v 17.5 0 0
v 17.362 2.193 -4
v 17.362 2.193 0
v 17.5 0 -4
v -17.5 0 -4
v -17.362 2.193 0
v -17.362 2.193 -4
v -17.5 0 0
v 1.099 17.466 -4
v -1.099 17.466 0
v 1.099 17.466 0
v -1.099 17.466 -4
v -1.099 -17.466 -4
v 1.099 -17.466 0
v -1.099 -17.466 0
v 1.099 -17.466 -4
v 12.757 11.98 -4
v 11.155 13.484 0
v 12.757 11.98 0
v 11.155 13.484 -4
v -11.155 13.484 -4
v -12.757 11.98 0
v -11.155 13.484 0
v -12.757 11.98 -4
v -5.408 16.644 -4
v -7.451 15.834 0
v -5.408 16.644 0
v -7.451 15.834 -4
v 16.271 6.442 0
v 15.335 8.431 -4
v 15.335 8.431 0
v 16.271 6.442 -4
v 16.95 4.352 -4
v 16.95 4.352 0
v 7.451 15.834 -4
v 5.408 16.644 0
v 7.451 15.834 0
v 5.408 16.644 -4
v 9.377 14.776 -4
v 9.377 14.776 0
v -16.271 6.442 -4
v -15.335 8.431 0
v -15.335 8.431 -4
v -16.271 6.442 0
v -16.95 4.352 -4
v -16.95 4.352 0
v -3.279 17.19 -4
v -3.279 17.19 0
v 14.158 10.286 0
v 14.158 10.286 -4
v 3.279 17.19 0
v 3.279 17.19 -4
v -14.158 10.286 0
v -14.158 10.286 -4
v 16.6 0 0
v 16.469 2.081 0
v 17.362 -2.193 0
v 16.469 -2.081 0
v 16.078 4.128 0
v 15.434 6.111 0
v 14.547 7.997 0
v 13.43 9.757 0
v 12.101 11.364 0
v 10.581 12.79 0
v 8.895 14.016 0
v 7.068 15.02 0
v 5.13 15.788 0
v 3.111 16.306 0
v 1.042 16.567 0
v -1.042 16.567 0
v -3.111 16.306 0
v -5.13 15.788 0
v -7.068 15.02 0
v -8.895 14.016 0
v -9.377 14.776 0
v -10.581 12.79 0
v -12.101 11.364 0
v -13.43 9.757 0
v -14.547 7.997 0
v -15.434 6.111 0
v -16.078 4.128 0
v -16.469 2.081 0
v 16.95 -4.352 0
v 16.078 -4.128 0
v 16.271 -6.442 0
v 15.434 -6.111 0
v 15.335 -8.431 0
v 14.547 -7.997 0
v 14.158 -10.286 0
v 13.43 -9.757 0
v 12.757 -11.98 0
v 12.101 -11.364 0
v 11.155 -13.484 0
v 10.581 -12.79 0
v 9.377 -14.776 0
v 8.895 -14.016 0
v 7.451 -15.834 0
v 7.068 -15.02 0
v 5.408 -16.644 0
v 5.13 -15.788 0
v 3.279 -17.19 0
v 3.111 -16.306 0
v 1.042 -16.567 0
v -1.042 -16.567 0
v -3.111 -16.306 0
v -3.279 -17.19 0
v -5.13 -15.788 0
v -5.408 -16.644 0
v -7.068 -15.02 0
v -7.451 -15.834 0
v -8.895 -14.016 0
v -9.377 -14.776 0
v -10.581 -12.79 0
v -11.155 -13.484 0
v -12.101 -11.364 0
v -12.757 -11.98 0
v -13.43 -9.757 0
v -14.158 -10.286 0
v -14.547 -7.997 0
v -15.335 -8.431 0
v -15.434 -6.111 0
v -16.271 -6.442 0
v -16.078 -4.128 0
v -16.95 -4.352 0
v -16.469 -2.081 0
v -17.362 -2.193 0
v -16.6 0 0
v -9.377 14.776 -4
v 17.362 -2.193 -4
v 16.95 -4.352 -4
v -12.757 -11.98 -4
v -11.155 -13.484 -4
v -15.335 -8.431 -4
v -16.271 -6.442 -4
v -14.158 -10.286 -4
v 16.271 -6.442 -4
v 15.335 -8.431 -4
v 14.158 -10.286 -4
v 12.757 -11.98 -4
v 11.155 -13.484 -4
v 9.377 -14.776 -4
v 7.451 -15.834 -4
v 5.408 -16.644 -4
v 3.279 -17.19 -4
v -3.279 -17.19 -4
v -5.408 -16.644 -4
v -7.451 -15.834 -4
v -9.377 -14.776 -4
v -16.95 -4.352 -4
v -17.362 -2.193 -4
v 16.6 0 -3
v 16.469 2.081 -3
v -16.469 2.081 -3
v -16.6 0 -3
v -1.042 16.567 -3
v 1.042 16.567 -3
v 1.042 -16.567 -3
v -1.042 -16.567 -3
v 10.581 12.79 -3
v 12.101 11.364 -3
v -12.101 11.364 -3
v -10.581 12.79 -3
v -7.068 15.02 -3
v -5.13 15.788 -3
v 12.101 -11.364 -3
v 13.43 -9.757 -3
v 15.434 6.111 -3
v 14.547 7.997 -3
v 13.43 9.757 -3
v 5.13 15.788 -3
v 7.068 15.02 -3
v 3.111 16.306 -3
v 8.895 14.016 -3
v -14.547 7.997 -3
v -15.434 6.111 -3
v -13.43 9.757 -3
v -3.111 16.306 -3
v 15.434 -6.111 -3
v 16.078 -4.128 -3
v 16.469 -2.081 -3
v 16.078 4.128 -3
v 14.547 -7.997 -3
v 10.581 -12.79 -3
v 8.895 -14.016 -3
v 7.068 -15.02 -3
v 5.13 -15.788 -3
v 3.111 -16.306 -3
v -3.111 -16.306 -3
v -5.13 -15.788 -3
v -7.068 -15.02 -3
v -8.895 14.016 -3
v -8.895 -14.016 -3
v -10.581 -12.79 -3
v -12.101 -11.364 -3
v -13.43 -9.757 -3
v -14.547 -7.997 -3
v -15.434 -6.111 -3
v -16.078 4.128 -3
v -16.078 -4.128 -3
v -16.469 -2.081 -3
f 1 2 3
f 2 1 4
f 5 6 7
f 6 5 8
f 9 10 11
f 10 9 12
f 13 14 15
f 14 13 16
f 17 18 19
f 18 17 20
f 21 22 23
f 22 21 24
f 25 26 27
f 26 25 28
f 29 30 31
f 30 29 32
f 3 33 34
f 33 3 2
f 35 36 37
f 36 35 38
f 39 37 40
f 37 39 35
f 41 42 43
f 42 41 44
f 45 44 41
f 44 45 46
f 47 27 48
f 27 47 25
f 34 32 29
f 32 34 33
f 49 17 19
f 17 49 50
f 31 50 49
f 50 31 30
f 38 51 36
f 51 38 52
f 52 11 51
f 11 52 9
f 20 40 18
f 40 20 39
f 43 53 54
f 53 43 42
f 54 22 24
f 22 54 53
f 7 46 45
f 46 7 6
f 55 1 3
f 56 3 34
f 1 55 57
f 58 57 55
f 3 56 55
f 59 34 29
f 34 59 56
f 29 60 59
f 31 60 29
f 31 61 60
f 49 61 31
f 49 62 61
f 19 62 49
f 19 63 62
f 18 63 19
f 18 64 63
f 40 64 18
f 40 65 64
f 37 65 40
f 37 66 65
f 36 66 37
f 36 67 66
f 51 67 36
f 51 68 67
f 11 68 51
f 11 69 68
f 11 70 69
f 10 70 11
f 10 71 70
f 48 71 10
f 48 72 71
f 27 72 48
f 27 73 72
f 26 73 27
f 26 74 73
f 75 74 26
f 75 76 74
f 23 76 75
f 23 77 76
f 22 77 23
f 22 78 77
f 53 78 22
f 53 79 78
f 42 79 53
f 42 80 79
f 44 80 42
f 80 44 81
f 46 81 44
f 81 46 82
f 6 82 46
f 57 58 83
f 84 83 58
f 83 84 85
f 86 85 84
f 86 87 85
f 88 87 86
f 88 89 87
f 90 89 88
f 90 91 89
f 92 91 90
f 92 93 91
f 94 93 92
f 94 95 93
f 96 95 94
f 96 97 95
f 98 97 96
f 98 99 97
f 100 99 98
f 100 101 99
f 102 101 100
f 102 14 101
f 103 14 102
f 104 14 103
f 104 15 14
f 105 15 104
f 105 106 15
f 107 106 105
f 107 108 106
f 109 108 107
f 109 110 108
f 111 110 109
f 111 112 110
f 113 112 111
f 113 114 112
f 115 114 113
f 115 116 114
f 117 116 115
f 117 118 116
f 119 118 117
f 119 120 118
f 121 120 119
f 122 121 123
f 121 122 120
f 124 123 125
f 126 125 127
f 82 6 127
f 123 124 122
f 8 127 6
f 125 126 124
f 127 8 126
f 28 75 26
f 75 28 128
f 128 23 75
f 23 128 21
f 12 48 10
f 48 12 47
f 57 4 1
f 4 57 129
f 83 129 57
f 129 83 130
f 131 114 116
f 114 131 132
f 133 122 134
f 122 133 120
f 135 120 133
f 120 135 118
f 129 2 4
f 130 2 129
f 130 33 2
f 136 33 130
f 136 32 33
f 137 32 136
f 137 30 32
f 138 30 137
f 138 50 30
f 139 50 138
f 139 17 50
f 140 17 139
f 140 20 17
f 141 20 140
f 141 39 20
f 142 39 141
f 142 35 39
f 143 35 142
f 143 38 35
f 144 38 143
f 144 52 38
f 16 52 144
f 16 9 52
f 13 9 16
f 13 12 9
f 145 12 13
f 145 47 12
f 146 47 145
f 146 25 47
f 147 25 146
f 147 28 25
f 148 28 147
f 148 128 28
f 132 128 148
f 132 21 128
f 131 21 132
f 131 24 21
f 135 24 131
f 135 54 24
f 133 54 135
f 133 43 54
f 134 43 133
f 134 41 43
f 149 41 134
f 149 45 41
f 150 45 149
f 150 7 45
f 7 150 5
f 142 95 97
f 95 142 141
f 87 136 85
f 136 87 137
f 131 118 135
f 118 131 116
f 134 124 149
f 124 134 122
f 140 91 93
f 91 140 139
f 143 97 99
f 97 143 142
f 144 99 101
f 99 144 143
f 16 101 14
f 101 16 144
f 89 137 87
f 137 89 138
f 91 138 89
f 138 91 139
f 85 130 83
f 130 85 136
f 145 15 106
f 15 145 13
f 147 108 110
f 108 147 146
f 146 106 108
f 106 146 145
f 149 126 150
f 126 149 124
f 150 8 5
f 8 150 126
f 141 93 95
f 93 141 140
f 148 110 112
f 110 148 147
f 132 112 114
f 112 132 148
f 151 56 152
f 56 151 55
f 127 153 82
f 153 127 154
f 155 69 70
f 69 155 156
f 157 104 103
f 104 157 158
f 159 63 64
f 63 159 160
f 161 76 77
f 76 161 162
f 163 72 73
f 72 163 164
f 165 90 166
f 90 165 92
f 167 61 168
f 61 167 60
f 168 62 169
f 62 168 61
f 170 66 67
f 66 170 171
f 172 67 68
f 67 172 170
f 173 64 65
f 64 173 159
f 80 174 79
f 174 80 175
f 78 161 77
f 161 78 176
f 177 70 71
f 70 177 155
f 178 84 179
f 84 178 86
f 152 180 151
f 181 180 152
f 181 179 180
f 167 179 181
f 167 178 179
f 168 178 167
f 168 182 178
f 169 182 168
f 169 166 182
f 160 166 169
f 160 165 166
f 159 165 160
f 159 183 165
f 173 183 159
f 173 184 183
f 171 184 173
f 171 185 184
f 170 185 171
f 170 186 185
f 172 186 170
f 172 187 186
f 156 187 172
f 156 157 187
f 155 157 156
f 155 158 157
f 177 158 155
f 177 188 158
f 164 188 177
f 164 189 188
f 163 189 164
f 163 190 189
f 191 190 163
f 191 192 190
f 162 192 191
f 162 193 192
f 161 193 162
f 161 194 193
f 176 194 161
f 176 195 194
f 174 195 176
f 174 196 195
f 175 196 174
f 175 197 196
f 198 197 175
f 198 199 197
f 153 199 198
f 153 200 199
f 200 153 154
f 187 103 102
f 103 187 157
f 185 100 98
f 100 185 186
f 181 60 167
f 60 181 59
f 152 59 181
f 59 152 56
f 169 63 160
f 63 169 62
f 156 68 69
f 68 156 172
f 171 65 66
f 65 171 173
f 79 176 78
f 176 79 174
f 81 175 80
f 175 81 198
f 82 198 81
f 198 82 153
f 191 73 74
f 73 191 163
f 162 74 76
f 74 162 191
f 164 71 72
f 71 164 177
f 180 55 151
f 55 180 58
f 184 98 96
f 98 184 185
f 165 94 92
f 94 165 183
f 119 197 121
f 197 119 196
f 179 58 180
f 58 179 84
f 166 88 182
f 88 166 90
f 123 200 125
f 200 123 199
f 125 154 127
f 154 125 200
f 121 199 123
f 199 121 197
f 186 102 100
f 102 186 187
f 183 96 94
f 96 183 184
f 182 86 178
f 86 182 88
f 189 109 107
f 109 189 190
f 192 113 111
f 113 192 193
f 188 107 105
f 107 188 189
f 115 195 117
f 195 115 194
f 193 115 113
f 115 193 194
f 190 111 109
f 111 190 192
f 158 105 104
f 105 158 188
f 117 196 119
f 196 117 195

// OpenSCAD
$fn = 50;


difference() {
	union() {
		translate(v = [0, 0, -4.0000000000]) {
			cylinder(h = 4, r = 17.5000000000);
		}
	}
	union() {
		#translate(v = [0, 0, -3.0000000000]) {
			cylinder(h = 3, r = 16.6000000000);
		}
	}
}
